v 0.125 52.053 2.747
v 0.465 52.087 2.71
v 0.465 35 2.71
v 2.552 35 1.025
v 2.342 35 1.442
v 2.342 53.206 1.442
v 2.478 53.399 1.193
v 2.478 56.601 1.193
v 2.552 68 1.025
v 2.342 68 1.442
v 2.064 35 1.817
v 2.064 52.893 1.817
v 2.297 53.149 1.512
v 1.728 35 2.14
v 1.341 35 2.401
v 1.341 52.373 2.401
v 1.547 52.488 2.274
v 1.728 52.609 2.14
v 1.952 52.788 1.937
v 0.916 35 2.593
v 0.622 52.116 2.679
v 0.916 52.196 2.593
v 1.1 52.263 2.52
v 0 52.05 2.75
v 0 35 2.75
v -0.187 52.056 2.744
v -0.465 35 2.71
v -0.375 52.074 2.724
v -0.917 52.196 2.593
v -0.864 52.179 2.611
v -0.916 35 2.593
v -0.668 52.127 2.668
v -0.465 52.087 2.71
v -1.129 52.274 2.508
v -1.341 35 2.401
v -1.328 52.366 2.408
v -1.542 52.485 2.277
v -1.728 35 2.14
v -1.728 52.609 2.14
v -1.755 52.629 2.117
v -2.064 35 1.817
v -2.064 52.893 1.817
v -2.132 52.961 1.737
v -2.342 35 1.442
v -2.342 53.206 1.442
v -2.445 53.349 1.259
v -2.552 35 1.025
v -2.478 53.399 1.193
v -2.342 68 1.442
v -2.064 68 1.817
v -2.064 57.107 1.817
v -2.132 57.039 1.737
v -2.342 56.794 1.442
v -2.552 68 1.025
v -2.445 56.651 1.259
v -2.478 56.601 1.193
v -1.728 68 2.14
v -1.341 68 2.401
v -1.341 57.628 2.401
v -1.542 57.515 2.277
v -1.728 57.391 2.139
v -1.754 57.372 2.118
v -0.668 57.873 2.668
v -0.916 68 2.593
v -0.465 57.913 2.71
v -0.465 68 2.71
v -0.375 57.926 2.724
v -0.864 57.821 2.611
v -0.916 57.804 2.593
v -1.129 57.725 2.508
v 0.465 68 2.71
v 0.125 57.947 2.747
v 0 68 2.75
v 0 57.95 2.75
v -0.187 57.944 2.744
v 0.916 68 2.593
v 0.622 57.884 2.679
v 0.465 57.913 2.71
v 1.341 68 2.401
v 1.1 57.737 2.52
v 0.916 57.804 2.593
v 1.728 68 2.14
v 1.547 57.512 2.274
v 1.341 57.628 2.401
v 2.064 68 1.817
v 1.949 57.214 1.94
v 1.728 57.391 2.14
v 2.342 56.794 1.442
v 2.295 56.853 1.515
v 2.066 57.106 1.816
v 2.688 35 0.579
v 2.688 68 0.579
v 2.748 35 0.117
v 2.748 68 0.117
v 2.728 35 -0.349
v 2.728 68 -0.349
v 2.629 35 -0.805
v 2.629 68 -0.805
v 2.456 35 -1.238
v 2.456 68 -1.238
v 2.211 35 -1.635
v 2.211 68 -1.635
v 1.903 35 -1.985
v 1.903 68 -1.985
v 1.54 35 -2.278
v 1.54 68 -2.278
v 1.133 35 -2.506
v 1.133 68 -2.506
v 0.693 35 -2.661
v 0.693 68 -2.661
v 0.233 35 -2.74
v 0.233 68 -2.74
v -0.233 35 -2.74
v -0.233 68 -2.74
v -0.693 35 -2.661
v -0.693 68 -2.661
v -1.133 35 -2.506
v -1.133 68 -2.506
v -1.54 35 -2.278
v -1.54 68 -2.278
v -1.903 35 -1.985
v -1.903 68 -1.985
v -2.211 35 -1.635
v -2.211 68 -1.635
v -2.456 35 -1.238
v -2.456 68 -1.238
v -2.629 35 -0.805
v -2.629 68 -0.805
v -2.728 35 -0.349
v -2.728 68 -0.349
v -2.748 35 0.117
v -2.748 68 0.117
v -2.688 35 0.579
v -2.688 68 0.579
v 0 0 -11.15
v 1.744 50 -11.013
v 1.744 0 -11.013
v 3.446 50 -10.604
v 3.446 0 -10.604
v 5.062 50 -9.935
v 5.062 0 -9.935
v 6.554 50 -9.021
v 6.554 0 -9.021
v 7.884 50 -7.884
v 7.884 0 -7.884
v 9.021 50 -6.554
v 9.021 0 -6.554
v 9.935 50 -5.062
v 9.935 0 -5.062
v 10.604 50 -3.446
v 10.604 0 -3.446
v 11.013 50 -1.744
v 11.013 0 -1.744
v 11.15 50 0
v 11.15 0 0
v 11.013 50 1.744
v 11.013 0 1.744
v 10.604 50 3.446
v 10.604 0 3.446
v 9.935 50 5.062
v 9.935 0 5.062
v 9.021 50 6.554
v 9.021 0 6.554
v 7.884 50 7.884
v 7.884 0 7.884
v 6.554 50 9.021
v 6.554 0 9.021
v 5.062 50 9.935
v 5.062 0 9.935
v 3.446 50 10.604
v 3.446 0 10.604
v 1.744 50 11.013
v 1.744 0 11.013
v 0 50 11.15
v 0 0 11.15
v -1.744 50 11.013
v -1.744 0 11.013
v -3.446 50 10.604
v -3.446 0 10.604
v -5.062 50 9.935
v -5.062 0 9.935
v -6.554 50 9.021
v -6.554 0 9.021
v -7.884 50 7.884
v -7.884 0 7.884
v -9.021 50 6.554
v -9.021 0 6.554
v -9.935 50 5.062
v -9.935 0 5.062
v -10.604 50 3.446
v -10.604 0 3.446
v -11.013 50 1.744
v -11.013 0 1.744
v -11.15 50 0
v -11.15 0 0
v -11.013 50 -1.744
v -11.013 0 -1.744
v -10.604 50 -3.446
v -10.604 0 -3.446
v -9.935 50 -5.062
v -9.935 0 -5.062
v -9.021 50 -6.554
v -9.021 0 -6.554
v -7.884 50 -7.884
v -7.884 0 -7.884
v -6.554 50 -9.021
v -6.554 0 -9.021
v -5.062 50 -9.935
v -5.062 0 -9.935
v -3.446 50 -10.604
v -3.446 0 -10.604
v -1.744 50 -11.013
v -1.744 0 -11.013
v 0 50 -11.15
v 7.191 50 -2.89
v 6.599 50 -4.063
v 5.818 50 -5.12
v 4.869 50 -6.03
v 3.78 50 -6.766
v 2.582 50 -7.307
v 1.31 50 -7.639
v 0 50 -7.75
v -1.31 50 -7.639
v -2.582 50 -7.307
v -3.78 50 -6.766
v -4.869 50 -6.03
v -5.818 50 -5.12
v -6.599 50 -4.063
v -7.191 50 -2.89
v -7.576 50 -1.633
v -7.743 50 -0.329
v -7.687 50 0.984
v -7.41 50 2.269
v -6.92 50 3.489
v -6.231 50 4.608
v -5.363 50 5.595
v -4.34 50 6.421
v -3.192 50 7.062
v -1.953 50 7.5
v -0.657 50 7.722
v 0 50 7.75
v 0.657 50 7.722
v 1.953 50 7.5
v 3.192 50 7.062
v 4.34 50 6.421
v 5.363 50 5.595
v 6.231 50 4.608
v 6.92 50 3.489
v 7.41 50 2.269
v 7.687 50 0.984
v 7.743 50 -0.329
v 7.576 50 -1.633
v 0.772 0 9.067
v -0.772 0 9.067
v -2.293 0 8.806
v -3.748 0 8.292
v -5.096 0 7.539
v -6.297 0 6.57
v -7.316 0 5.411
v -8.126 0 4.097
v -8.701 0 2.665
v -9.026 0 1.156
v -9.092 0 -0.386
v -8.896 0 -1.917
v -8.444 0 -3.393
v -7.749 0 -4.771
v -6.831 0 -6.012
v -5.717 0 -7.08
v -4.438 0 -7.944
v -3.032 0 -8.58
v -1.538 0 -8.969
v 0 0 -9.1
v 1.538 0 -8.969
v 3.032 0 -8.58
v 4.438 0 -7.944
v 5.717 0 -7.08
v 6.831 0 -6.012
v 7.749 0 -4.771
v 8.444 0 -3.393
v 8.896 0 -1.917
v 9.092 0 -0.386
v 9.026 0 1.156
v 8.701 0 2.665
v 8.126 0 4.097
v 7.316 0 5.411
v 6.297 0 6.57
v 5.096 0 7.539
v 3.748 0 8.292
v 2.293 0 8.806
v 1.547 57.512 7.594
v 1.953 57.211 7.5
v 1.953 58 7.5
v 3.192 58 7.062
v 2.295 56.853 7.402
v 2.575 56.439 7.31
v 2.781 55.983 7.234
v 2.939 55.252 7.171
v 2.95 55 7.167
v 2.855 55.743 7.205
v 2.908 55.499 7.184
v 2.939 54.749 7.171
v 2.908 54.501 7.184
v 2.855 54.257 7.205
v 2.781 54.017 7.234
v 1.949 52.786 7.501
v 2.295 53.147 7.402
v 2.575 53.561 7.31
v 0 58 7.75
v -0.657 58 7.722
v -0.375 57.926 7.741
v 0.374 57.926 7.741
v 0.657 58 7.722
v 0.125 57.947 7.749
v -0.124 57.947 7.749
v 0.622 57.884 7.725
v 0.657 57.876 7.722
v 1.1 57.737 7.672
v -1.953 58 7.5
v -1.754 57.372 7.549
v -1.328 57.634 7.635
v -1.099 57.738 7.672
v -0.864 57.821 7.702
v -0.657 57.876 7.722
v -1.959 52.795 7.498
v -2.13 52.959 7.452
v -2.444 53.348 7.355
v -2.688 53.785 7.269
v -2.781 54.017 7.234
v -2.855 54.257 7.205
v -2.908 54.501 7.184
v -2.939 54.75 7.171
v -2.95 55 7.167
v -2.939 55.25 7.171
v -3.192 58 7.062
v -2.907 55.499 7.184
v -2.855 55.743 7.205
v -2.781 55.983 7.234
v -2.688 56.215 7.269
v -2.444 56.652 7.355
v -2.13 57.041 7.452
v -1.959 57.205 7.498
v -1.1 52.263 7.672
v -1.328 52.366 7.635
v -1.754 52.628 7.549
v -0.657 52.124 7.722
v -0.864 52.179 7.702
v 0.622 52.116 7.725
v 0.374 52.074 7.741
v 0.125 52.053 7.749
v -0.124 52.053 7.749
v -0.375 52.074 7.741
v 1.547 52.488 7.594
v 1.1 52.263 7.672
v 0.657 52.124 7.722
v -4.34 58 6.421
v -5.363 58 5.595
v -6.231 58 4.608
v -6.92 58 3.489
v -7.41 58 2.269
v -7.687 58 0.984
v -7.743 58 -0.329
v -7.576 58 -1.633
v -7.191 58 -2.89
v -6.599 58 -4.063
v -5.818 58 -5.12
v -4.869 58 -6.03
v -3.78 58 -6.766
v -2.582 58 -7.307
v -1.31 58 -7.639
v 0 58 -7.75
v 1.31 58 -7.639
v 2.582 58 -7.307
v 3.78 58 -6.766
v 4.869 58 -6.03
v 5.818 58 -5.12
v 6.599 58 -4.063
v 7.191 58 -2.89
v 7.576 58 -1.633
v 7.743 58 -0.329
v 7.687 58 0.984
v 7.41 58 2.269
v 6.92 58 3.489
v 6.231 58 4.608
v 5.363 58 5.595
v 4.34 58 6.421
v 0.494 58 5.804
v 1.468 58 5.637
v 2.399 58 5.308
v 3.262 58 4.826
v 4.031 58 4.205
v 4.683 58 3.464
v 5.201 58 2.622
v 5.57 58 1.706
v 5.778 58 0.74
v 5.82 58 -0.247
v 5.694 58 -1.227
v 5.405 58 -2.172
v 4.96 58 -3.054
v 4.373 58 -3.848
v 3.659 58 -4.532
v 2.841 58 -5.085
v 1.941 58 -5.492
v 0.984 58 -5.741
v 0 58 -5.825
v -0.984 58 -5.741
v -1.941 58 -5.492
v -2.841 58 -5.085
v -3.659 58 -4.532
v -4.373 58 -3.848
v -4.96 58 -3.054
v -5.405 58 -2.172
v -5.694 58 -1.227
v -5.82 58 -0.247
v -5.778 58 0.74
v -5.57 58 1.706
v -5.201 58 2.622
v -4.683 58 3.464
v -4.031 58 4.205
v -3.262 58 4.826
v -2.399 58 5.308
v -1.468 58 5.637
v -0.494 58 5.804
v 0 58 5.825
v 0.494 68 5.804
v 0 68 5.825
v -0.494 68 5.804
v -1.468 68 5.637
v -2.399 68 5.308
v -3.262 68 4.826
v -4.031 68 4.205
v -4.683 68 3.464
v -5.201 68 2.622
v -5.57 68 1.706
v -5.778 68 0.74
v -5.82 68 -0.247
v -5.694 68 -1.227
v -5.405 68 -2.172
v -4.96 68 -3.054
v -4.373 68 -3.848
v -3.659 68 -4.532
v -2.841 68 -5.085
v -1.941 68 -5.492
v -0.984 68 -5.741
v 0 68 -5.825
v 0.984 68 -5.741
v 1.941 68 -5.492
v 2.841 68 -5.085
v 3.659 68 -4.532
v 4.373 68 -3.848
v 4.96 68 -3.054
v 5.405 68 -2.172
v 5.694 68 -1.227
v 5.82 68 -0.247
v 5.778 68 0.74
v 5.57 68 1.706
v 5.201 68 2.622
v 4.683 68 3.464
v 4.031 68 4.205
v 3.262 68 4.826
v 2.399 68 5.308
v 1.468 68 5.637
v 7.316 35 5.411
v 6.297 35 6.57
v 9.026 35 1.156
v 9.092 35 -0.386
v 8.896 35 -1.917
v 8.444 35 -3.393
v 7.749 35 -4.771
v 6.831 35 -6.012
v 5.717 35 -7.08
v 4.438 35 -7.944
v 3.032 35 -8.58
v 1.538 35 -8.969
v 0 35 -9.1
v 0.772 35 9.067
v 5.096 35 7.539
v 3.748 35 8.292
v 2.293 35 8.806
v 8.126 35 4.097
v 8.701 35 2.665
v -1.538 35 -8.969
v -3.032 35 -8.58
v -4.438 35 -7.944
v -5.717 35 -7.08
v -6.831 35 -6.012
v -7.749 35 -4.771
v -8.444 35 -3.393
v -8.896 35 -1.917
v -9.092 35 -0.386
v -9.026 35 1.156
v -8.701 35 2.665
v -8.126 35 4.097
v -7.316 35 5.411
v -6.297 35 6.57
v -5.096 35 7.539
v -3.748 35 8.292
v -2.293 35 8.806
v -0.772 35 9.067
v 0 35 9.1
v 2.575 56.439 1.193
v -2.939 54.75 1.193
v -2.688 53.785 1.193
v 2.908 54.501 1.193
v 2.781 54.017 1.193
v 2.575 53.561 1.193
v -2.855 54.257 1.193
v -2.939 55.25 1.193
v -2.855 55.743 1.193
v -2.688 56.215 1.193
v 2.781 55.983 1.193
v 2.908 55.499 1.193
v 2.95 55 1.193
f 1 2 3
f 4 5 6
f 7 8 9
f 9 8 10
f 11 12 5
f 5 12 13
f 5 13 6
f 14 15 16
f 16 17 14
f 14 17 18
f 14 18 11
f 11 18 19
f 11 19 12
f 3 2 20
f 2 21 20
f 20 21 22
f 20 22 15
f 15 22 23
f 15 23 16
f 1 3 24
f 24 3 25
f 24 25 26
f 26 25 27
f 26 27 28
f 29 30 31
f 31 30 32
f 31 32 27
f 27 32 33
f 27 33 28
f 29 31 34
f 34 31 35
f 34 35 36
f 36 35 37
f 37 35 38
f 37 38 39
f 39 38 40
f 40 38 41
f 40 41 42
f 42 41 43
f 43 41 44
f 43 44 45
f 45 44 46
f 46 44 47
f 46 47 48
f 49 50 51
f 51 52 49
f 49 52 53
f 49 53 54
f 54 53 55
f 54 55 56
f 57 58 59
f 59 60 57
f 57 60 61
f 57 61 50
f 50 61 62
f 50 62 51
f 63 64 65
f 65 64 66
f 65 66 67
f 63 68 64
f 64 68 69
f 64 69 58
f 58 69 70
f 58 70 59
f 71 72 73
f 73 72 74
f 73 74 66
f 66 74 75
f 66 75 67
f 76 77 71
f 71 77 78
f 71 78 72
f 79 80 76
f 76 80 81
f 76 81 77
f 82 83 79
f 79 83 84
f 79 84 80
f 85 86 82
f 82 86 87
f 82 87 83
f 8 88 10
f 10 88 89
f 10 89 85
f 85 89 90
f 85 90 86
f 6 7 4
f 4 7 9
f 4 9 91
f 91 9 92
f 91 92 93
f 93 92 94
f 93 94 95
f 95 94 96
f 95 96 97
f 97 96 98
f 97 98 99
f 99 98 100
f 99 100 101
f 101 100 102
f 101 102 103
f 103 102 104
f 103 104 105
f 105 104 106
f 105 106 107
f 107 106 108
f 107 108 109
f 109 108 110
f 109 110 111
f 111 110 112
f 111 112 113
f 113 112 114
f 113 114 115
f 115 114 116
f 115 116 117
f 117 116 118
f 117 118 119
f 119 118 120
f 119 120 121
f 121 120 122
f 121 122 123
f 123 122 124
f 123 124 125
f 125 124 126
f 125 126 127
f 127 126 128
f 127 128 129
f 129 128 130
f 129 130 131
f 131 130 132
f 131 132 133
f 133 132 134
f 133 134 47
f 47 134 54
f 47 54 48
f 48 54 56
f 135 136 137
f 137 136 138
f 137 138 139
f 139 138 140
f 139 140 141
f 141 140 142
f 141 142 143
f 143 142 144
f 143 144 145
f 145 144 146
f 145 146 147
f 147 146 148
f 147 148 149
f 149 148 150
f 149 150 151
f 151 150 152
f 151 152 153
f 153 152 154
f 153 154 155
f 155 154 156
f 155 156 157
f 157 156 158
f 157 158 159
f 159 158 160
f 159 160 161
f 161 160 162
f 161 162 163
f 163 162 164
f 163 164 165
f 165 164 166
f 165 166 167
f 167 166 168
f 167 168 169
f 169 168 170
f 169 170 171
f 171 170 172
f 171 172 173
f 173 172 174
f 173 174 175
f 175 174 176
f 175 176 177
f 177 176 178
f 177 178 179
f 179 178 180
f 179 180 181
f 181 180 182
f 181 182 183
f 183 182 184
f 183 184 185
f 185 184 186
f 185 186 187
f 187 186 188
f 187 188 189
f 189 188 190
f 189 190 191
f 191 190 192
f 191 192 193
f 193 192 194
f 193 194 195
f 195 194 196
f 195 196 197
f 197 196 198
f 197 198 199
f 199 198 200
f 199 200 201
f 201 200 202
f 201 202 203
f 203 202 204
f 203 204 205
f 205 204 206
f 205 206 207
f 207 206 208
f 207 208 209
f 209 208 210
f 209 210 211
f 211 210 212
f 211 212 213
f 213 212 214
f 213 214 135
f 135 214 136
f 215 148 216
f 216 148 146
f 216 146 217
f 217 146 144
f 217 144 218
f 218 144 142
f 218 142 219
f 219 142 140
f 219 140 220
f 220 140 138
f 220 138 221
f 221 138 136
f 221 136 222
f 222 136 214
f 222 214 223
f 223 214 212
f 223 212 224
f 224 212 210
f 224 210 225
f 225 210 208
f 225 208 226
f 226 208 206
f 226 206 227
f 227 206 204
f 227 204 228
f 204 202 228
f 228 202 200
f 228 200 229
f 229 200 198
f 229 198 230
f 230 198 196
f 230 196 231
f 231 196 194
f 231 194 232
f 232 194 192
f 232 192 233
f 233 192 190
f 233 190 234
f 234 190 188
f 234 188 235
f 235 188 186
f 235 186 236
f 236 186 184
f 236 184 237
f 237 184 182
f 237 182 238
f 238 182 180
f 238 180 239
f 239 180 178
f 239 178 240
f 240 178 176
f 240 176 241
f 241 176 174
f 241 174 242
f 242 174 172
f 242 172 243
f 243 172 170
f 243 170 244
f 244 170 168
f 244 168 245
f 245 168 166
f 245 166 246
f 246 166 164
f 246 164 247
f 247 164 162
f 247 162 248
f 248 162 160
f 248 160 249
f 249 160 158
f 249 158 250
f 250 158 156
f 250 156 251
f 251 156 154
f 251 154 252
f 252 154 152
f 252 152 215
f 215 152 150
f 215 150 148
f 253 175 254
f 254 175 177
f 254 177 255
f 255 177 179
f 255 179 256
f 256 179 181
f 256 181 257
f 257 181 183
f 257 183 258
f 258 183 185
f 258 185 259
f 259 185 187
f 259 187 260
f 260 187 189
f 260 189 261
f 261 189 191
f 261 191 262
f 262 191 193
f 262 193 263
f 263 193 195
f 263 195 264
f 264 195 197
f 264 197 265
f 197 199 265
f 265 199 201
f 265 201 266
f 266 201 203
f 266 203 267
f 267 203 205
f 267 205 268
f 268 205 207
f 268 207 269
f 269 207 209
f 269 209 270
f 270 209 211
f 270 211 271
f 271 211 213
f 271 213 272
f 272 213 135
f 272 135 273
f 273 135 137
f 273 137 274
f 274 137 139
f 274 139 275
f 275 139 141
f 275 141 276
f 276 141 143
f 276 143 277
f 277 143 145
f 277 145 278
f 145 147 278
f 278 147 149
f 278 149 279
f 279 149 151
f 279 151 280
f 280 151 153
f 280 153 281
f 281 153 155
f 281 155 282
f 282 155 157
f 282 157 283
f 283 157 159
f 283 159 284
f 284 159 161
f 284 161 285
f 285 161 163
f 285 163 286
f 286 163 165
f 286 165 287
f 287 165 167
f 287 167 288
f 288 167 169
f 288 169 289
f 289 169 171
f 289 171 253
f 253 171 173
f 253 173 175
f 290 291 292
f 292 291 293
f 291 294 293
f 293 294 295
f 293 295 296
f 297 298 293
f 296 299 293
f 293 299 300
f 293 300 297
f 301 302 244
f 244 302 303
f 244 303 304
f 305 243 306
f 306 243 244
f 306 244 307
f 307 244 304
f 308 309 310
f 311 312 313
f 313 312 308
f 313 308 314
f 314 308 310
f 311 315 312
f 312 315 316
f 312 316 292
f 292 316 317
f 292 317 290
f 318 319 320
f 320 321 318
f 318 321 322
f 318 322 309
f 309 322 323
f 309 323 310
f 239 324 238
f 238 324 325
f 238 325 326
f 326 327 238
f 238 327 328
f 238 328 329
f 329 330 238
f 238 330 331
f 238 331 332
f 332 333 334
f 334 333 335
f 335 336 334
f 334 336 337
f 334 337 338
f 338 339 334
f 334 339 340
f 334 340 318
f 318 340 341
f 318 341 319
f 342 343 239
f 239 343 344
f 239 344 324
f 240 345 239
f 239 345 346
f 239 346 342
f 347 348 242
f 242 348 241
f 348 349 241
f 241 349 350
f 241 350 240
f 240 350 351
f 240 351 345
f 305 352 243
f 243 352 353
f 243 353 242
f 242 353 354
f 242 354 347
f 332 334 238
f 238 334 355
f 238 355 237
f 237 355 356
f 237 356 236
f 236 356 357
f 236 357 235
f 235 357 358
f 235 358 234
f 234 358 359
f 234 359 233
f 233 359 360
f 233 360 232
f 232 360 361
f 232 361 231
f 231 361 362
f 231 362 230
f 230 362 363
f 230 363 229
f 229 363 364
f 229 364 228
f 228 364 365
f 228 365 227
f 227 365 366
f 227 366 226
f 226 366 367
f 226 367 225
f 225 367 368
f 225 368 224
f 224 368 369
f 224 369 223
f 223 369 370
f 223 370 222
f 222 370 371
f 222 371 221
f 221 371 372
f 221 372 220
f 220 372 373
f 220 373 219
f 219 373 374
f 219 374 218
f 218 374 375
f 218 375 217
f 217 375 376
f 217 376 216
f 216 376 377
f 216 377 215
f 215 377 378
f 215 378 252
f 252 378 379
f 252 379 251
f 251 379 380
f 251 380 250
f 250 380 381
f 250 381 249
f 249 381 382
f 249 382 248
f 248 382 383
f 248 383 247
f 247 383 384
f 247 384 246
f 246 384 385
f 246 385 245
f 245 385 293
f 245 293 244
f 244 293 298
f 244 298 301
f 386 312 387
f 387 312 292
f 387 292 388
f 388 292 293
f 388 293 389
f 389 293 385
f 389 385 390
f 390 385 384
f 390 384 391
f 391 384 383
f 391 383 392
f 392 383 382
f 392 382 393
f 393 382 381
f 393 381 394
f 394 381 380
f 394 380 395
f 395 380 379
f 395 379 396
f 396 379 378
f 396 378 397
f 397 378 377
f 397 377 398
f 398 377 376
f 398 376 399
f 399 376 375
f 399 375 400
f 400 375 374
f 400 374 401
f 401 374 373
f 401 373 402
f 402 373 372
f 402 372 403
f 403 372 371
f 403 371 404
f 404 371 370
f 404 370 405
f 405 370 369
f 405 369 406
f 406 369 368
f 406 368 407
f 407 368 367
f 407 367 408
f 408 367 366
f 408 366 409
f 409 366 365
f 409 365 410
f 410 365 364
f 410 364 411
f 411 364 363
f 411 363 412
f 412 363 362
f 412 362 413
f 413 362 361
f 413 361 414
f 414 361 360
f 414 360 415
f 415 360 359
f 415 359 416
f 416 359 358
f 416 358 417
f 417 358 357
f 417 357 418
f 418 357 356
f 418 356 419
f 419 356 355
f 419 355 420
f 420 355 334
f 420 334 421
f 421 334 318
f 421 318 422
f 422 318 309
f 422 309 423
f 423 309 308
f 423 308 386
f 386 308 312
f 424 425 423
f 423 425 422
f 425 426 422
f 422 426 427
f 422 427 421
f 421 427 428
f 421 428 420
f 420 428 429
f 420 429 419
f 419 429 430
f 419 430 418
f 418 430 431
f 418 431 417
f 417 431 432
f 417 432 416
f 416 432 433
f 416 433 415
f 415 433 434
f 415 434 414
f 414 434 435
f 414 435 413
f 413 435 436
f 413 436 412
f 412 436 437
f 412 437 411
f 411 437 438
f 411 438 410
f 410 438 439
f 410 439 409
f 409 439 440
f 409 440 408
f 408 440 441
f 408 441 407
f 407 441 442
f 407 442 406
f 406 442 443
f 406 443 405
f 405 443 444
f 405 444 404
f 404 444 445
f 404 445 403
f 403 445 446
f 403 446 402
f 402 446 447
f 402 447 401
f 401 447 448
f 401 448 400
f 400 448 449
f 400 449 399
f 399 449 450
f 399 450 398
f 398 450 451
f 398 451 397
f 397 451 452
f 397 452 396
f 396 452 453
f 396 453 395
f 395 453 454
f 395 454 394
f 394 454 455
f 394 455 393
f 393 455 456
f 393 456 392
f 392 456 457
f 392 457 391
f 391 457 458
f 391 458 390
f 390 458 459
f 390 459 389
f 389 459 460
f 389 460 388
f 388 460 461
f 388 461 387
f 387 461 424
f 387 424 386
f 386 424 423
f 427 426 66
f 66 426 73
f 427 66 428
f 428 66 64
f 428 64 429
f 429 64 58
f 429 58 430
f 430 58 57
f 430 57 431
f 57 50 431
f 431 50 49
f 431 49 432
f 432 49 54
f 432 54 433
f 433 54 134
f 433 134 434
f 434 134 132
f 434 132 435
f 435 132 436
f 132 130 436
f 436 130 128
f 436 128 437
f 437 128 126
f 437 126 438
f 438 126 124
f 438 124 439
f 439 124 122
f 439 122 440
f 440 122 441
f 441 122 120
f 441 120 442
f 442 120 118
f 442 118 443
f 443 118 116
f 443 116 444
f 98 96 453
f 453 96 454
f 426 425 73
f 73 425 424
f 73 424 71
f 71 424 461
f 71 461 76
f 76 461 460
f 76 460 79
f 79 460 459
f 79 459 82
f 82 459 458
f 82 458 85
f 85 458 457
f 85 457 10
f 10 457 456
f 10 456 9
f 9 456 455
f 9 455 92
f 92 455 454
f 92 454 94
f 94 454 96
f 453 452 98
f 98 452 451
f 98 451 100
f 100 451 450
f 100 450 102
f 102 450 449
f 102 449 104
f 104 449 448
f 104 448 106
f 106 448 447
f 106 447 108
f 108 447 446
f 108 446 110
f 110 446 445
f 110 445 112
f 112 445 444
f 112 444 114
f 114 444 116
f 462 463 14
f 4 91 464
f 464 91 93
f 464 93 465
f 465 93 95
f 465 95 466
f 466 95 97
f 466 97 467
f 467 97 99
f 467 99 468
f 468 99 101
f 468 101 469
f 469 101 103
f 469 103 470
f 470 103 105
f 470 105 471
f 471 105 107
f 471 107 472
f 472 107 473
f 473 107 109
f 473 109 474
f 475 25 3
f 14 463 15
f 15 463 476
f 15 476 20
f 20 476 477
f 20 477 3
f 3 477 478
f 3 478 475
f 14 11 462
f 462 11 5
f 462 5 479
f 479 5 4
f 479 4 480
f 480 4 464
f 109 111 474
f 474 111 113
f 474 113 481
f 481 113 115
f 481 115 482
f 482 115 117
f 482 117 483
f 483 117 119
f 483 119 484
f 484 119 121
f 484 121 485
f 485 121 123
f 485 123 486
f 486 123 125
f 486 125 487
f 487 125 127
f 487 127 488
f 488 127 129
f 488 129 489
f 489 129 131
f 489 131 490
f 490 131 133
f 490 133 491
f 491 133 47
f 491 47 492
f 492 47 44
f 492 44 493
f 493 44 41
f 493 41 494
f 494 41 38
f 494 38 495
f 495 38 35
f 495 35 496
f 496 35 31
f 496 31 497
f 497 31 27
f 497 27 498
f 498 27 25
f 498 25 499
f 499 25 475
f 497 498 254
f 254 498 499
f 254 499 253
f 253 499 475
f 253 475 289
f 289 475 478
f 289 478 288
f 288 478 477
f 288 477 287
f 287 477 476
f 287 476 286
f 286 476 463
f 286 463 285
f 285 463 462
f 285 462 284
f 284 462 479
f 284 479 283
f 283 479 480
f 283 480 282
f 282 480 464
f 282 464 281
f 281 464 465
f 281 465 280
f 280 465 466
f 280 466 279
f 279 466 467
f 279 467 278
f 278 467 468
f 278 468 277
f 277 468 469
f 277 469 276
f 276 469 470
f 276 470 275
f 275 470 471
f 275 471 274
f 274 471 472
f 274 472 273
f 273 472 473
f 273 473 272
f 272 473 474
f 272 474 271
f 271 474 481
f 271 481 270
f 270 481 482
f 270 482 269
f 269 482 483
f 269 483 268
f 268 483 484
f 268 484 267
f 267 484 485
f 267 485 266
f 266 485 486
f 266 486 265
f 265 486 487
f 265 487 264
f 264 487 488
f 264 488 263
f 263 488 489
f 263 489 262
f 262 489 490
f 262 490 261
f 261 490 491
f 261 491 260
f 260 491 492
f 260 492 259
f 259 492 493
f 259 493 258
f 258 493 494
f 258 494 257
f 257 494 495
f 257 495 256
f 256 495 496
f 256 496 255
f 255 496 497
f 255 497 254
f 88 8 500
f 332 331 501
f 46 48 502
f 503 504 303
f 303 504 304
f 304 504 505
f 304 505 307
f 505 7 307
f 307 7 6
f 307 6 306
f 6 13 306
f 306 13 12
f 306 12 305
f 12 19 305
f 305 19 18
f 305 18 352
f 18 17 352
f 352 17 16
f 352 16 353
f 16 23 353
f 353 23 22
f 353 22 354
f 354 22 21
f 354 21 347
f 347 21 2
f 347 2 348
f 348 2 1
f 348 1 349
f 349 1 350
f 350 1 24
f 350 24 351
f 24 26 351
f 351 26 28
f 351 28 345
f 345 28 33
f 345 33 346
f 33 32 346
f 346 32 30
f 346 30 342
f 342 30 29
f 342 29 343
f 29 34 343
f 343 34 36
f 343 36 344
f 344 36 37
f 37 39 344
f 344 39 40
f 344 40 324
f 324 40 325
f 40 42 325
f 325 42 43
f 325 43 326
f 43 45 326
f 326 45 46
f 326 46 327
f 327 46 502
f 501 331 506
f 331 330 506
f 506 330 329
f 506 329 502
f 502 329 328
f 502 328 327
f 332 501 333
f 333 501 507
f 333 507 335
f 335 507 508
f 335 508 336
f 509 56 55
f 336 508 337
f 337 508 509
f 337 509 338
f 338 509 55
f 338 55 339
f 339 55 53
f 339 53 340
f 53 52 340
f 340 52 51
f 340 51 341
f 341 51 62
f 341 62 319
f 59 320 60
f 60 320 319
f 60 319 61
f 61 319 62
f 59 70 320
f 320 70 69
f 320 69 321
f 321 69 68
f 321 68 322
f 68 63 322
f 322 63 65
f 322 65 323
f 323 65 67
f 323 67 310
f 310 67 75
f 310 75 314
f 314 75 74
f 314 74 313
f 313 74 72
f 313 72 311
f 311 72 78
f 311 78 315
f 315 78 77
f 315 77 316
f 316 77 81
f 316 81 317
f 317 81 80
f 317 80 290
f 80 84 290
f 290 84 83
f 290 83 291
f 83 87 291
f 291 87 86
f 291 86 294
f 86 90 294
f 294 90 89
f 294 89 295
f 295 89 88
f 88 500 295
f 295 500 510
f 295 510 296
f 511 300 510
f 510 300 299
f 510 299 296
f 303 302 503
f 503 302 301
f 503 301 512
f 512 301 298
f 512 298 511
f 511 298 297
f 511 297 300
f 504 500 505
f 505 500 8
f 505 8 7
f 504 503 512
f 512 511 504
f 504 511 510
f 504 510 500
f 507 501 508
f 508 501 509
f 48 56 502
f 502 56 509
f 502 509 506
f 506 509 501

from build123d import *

# Parameters (mm, degrees)
SKETCH1_R           = 11.15
BOSS_EXTRUDE1_DEPTH = 50
SKETCH2_R           = 7.75
BOSS_EXTRUDE2_DEPTH = 8
SKETCH3_R           = 5.825
BOSS_EXTRUDE3_DEPTH = 10
SKETCH4_R           = 9.1
CUT_EXTRUDE1_DEPTH  = 35
SKETCH5_R           = 2.75
CUT_EXTRUDE2_DEPTH  = 70.804333676
SKETCH10_W          = 3
SKETCH10_H          = 11.4427922
BOSS_EXTRUDE5_DEPTH = 6
SKETCH12_W          = 6
SKETCH12_H          = 1
CUT_EXTRUDE6_DEPTH  = 6
CUT_EXTRUDE8_DEPTH  = 18
SKETCH14_W          = 6
SKETCH14_H          = 10.4427922
CUT_EXTRUDE9_DEPTH  = 8


with BuildPart() as part:
    # Sketch1 → Boss-Extrude1 (new body)
    with BuildSketch(Plane(origin=(0, 0, 0), x_dir=(1, 0, 0), z_dir=(0, 1, 0))):
        with Locations(Location((0, 0, 0), (0, 0, 270))):
            Circle(SKETCH1_R)
    extrude(amount=BOSS_EXTRUDE1_DEPTH)

    # Sketch2 → Boss-Extrude2 (add)
    with BuildSketch(Plane(origin=(0, 50, 0), x_dir=(1, 0, 0), z_dir=(0, 1, 0))):
        with Locations(Location((0, 0, 0), (0, 0, 270))):
            Circle(SKETCH2_R)
    extrude(amount=BOSS_EXTRUDE2_DEPTH)

    # Sketch3 → Boss-Extrude3 (add)
    with BuildSketch(Plane(origin=(0, 58, 0), x_dir=(1, 0, 0), z_dir=(0, 1, 0))):
        with Locations(Location((0, 0, 0), (0, 0, 270))):
            Circle(SKETCH3_R)
    extrude(amount=BOSS_EXTRUDE3_DEPTH)

    # Sketch4 → Cut-Extrude1 (cut)
    with BuildSketch(Plane.XZ):
        with Locations(Location((0, 0, 0), (0, 0, 270))):
            Circle(SKETCH4_R)
    extrude(amount=-CUT_EXTRUDE1_DEPTH, mode=Mode.SUBTRACT)

    # Sketch5 → Cut-Extrude2 (cut, through all)
    with BuildSketch(Plane(origin=(0, 68, 0), x_dir=(1, 0, 0), z_dir=(0, 1, 0))):
        with Locations(Location((0, 0, 0), (0, 0, 270))):
            Circle(SKETCH5_R)
    extrude(amount=-CUT_EXTRUDE2_DEPTH, mode=Mode.SUBTRACT)


with BuildPart() as body_2:
    # Sketch10 → Boss-Extrude5 (new body)
    with BuildSketch(Plane(origin=(0, 58, 0), x_dir=(1, 0, 0), z_dir=(0, 1, 0))):
        with Locations((-1.5, -13.4713961)):
            Rectangle(SKETCH10_W, SKETCH10_H)
        with Locations((1.5, -13.4713961)):
            Rectangle(SKETCH10_W, SKETCH10_H)
    extrude(amount=-BOSS_EXTRUDE5_DEPTH)

    # Sketch12 → Cut-Extrude6 (cut)
    with BuildSketch(Plane(origin=(0, 58, 0), x_dir=(1, 0, 0), z_dir=(0, 1, 0))):
        with Locations((0, -8.25)):
            Rectangle(SKETCH12_W, SKETCH12_H)
    extrude(amount=-CUT_EXTRUDE6_DEPTH, mode=Mode.SUBTRACT)


with BuildPart() as cut_extrude8_tool:
    # Sketch11 → Cut-Extrude8 (new body)
    with BuildSketch(Plane.XY.offset(19.1927922)):
        with BuildLine():
            ThreePointArc((2.95, 55), (0, 57.95), (-2.95, 55))
            Line((-2.95, 55), (2.95, 55))
        make_face()
        with BuildLine():
            Line((2.95, 55), (-2.95, 55))
            ThreePointArc((-2.95, 55), (0, 52.05), (2.95, 55))
        make_face()
    extrude(amount=-CUT_EXTRUDE8_DEPTH)


with BuildPart() as part_1:
    add(part.part)

    # Cut-Extrude8: cut by cut_extrude8_tool
    add(cut_extrude8_tool.part, mode=Mode.SUBTRACT)


with BuildPart() as body_2_1:
    add(body_2.part)

    # Cut-Extrude8: cut by cut_extrude8_tool
    add(cut_extrude8_tool.part, mode=Mode.SUBTRACT)

    # Sketch14 → Cut-Extrude9 (cut)
    with BuildSketch(Plane(origin=(0, 58, 0), x_dir=(1, 0, 0), z_dir=(0, 1, 0))):
        with Locations((0, -13.9713961)):
            Rectangle(SKETCH14_W, SKETCH14_H)
    extrude(amount=-CUT_EXTRUDE9_DEPTH, mode=Mode.SUBTRACT)


solid = part_1.part
